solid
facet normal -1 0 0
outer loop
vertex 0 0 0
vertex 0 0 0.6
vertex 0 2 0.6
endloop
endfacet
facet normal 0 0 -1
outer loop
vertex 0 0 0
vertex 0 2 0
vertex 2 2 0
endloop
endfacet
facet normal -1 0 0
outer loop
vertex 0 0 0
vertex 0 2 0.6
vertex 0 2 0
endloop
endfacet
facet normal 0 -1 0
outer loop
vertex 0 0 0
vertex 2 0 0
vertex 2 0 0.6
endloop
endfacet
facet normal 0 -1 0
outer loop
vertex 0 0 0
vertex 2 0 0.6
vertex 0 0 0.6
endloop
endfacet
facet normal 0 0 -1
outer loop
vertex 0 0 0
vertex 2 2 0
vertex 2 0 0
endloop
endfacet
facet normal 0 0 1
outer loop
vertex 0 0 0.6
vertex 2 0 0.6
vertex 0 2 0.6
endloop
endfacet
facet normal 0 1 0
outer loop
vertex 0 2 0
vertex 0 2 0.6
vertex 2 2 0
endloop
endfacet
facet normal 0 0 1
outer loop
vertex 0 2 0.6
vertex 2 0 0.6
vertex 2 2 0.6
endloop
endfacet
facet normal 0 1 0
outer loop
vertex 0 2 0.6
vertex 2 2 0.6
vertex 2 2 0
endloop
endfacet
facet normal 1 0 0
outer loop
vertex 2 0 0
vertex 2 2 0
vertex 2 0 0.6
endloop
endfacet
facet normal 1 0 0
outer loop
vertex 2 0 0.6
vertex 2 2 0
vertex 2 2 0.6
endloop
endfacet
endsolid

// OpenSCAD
/* Warning, this is a very basic generator with a lot of approximation 
input data : [UDFN, J4A, 2x2x0.6mm, 10, , A, C04-01155A]
generated by com.zoubworld.electronics.cad.model3d.Basic
Date : Sun Feb 15 10:50:49 CET 2026
*/

//body
color("black")
translate([0,0,0])
cube([2.0,2.0,0.6], center=false);
